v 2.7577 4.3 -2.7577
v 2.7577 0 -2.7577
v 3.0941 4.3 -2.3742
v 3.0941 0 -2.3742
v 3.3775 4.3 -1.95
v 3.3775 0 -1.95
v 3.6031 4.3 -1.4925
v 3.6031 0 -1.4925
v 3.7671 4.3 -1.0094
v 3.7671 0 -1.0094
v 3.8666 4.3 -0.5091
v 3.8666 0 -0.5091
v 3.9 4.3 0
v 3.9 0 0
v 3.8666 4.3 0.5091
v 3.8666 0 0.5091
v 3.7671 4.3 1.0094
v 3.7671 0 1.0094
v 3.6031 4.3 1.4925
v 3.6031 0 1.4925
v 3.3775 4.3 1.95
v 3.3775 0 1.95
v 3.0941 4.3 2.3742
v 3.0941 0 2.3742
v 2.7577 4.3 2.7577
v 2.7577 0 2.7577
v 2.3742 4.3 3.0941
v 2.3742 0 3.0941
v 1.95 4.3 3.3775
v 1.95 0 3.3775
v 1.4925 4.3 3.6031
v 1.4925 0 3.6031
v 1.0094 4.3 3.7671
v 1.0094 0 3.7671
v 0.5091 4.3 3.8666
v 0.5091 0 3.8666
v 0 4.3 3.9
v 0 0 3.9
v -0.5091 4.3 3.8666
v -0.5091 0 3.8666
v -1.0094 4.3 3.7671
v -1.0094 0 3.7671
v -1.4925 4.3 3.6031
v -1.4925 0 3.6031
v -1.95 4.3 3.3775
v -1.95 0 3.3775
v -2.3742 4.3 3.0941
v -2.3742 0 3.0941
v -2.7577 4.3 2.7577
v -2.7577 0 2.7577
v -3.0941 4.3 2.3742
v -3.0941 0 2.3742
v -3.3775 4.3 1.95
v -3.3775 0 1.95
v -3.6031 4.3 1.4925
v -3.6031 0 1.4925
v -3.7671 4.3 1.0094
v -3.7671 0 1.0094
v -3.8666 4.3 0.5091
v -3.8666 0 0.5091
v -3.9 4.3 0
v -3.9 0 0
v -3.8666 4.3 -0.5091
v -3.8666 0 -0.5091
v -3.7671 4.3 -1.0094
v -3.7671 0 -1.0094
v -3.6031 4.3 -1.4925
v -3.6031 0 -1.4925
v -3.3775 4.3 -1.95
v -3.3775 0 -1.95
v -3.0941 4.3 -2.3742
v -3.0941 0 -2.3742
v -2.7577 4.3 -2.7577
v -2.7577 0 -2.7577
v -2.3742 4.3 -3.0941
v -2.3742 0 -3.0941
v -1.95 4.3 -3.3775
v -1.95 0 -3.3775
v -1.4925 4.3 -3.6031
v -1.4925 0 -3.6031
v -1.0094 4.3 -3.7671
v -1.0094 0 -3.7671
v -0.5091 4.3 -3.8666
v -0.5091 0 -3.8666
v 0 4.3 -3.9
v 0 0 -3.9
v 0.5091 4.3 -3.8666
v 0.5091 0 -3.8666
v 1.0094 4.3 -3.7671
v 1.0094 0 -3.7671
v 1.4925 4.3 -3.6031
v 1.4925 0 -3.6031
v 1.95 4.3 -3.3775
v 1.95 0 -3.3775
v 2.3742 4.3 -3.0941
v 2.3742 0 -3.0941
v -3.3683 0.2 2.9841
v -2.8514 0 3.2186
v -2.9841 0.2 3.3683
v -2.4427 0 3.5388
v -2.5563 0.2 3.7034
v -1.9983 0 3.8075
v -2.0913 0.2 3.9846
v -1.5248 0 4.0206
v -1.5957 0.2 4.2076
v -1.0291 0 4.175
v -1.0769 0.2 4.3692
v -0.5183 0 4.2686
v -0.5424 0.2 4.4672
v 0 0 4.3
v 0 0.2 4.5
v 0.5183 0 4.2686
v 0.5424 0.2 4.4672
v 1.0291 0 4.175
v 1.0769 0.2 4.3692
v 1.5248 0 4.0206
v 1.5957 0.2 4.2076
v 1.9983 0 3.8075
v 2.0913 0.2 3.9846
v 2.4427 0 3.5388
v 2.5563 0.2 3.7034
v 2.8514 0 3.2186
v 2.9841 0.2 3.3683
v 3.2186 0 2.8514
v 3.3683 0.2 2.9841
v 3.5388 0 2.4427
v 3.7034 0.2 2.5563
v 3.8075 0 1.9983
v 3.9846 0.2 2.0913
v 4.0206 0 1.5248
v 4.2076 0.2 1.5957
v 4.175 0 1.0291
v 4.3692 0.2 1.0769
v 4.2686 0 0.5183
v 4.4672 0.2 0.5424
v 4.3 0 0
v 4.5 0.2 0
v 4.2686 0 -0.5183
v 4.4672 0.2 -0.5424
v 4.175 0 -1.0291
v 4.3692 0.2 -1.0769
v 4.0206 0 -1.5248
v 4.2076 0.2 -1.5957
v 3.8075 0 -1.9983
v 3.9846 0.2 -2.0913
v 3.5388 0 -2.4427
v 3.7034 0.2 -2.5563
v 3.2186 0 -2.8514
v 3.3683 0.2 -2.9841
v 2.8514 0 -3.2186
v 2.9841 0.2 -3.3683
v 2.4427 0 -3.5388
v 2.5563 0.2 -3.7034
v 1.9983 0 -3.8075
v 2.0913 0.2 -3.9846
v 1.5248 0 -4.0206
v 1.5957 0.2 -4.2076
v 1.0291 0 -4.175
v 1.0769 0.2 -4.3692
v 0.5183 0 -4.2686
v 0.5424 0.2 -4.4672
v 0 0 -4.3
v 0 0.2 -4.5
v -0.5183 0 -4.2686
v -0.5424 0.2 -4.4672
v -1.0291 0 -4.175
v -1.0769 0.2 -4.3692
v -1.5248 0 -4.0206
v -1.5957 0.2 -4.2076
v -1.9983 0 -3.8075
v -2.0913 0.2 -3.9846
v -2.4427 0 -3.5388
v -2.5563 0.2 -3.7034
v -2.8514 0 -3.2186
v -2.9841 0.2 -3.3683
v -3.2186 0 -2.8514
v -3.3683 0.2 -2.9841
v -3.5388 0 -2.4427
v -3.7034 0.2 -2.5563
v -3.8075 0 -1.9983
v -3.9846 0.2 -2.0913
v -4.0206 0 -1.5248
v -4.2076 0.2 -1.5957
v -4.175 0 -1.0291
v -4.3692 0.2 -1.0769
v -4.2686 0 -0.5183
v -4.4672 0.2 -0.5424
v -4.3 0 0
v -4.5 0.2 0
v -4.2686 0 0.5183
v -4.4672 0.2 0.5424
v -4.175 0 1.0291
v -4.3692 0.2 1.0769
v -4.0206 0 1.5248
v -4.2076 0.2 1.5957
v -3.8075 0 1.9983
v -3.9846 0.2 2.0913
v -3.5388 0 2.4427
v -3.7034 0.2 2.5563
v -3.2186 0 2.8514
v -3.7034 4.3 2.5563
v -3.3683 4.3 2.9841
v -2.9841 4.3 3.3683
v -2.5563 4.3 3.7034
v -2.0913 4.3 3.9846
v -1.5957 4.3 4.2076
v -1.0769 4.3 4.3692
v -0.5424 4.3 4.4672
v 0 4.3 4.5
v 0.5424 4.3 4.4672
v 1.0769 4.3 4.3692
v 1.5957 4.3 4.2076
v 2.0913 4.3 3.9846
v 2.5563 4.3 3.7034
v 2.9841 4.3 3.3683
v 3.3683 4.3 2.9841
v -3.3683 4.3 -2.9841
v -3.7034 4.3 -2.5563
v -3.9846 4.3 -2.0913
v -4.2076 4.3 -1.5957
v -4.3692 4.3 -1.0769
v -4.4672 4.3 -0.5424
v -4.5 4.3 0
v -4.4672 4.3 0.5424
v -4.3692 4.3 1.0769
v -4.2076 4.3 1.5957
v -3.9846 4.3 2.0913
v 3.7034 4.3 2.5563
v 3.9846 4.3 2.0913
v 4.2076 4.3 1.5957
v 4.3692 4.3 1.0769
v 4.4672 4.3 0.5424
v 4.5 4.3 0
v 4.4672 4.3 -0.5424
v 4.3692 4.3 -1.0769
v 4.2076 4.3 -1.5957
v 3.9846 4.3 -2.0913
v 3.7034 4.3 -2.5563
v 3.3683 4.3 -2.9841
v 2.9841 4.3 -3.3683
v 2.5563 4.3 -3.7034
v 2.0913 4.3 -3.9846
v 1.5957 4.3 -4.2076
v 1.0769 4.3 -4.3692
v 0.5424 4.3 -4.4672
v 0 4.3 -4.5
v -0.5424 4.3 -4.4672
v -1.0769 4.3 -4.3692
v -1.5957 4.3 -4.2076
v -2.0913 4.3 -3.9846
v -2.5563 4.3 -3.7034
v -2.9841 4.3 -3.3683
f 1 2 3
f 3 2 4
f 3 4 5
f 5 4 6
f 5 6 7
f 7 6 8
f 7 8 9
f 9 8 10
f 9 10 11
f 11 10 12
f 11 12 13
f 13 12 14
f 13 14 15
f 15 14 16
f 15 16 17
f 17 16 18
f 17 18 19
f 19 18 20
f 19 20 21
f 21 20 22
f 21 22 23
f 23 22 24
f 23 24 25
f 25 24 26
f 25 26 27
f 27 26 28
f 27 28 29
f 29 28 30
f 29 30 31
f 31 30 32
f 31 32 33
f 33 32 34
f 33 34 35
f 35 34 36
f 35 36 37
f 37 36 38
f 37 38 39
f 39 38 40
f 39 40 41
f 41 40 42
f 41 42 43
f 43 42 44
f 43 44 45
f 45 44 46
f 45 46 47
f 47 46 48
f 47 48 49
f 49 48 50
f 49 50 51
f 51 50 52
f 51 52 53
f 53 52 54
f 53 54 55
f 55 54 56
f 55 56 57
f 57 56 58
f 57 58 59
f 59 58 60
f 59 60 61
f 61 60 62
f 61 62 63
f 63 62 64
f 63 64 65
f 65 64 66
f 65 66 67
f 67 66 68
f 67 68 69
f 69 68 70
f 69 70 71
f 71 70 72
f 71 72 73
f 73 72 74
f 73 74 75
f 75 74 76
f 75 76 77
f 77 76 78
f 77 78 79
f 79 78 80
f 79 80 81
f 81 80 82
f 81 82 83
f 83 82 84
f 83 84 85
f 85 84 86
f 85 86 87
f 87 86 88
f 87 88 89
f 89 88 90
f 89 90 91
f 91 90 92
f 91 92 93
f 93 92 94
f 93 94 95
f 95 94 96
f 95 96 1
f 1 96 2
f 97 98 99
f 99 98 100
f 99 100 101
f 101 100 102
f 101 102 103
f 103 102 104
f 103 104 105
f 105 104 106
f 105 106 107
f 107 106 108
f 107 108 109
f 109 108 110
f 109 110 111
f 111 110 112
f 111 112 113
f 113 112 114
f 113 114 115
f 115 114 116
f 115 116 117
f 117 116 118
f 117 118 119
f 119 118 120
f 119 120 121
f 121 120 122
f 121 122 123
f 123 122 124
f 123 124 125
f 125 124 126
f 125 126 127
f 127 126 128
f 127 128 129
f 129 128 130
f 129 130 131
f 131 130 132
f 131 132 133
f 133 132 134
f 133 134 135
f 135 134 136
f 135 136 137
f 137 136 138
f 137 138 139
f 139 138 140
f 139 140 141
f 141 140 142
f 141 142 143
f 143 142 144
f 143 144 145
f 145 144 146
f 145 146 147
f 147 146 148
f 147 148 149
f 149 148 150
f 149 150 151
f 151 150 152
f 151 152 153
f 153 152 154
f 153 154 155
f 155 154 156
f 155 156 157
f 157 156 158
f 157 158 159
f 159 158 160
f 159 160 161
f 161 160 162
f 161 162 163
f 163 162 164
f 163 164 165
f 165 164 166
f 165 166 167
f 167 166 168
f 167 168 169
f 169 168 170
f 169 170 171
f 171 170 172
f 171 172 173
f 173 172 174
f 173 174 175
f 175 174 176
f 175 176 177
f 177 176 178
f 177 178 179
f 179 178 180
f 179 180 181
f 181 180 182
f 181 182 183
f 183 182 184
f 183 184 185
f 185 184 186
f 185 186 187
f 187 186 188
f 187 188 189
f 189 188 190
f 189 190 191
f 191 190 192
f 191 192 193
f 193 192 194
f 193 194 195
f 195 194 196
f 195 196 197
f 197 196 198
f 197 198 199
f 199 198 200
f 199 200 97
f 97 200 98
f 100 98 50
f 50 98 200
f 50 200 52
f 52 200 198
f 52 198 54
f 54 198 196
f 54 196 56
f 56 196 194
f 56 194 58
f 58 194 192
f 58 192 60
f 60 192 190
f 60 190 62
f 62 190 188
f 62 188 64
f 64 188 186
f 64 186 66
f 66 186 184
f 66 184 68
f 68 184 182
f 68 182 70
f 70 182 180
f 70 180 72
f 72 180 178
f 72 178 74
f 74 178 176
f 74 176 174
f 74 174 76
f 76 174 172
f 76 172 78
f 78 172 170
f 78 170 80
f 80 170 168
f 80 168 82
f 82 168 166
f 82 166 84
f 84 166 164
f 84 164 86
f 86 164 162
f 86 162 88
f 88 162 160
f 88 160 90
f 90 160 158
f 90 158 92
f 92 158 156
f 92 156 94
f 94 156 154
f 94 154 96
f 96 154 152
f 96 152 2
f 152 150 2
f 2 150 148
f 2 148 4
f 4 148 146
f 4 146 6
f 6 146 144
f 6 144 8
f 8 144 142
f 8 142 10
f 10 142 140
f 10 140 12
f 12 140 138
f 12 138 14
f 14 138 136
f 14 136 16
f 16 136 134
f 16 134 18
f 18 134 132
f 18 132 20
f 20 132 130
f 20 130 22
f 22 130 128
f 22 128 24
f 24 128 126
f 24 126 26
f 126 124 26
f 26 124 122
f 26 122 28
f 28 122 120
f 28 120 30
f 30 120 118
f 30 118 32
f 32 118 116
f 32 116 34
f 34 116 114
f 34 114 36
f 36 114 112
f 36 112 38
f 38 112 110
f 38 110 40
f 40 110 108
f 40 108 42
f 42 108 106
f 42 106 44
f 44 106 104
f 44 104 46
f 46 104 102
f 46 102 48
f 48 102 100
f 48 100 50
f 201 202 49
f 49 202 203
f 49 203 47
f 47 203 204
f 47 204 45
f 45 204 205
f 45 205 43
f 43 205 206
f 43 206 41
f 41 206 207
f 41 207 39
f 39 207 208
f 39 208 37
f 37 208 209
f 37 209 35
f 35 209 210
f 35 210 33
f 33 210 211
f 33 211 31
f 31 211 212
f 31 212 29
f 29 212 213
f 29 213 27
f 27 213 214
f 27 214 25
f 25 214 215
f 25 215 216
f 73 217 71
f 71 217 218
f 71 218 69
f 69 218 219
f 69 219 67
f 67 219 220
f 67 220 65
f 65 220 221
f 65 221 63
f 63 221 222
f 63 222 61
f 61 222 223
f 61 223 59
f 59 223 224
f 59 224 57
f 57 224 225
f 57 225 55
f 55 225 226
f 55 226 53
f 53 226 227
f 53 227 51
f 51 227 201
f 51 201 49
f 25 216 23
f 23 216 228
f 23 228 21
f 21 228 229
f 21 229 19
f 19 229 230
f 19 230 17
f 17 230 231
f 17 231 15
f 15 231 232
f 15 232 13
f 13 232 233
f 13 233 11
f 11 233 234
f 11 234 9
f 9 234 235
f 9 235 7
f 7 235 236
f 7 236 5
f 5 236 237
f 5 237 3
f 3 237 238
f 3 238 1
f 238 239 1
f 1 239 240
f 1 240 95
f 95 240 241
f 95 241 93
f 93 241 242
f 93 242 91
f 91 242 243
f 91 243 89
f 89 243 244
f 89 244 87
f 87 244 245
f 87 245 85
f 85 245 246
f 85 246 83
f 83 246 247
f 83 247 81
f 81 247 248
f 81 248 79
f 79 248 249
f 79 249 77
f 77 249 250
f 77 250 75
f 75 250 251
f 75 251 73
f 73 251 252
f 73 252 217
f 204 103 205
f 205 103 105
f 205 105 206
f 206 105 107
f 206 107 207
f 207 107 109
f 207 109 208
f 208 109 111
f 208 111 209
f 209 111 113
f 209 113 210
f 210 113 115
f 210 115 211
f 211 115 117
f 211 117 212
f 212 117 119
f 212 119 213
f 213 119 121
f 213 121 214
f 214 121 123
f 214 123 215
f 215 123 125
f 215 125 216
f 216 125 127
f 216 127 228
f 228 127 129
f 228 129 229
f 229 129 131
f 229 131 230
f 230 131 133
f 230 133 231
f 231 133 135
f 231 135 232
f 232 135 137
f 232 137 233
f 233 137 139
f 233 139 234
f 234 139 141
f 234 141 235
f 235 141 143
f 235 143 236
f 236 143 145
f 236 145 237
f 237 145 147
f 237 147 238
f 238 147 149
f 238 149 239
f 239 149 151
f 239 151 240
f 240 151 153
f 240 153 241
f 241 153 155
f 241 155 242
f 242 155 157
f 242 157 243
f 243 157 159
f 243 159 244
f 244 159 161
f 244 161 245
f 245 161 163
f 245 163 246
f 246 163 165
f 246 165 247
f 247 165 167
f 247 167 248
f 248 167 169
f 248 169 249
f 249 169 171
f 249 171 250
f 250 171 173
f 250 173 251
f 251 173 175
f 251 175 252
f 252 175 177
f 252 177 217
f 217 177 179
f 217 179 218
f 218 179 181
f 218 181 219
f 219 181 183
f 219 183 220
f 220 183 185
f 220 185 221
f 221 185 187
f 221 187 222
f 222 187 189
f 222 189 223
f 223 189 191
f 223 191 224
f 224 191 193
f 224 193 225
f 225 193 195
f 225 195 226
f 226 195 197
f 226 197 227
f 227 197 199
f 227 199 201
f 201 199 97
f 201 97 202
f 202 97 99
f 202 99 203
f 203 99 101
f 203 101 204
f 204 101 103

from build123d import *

# Parameters (mm, degrees)
SKETCH1_R           = 4.5
BOSS_EXTRUDE1_DEPTH = 4.3
SKETCH2_R           = 3.9
CUT_EXTRUDE1_DEPTH  = 5.3
CHAMFER1_SIZE       = 0.2


with BuildPart() as part:
    # Sketch1 → Boss-Extrude1 (new body)
    with BuildSketch(Plane(origin=(0, 0, 0), x_dir=(1, 0, 0), z_dir=(0, 1, 0))):
        Circle(SKETCH1_R)
    extrude(amount=BOSS_EXTRUDE1_DEPTH)

    # Sketch2 → Cut-Extrude1 (cut, through all)
    with BuildSketch(Plane(origin=(0, 4.3, 0), x_dir=(1, 0, 0), z_dir=(0, 1, 0))):
        Circle(SKETCH2_R)
    extrude(amount=-CUT_EXTRUDE1_DEPTH, mode=Mode.SUBTRACT)

    # Chamfer1
    chamfer1_edges = [part.edges().sort_by_distance(p)[0] for p in [
        (-4.5, 0, 0),
    ]]
    chamfer(chamfer1_edges, length=CHAMFER1_SIZE)


solid = part.part
